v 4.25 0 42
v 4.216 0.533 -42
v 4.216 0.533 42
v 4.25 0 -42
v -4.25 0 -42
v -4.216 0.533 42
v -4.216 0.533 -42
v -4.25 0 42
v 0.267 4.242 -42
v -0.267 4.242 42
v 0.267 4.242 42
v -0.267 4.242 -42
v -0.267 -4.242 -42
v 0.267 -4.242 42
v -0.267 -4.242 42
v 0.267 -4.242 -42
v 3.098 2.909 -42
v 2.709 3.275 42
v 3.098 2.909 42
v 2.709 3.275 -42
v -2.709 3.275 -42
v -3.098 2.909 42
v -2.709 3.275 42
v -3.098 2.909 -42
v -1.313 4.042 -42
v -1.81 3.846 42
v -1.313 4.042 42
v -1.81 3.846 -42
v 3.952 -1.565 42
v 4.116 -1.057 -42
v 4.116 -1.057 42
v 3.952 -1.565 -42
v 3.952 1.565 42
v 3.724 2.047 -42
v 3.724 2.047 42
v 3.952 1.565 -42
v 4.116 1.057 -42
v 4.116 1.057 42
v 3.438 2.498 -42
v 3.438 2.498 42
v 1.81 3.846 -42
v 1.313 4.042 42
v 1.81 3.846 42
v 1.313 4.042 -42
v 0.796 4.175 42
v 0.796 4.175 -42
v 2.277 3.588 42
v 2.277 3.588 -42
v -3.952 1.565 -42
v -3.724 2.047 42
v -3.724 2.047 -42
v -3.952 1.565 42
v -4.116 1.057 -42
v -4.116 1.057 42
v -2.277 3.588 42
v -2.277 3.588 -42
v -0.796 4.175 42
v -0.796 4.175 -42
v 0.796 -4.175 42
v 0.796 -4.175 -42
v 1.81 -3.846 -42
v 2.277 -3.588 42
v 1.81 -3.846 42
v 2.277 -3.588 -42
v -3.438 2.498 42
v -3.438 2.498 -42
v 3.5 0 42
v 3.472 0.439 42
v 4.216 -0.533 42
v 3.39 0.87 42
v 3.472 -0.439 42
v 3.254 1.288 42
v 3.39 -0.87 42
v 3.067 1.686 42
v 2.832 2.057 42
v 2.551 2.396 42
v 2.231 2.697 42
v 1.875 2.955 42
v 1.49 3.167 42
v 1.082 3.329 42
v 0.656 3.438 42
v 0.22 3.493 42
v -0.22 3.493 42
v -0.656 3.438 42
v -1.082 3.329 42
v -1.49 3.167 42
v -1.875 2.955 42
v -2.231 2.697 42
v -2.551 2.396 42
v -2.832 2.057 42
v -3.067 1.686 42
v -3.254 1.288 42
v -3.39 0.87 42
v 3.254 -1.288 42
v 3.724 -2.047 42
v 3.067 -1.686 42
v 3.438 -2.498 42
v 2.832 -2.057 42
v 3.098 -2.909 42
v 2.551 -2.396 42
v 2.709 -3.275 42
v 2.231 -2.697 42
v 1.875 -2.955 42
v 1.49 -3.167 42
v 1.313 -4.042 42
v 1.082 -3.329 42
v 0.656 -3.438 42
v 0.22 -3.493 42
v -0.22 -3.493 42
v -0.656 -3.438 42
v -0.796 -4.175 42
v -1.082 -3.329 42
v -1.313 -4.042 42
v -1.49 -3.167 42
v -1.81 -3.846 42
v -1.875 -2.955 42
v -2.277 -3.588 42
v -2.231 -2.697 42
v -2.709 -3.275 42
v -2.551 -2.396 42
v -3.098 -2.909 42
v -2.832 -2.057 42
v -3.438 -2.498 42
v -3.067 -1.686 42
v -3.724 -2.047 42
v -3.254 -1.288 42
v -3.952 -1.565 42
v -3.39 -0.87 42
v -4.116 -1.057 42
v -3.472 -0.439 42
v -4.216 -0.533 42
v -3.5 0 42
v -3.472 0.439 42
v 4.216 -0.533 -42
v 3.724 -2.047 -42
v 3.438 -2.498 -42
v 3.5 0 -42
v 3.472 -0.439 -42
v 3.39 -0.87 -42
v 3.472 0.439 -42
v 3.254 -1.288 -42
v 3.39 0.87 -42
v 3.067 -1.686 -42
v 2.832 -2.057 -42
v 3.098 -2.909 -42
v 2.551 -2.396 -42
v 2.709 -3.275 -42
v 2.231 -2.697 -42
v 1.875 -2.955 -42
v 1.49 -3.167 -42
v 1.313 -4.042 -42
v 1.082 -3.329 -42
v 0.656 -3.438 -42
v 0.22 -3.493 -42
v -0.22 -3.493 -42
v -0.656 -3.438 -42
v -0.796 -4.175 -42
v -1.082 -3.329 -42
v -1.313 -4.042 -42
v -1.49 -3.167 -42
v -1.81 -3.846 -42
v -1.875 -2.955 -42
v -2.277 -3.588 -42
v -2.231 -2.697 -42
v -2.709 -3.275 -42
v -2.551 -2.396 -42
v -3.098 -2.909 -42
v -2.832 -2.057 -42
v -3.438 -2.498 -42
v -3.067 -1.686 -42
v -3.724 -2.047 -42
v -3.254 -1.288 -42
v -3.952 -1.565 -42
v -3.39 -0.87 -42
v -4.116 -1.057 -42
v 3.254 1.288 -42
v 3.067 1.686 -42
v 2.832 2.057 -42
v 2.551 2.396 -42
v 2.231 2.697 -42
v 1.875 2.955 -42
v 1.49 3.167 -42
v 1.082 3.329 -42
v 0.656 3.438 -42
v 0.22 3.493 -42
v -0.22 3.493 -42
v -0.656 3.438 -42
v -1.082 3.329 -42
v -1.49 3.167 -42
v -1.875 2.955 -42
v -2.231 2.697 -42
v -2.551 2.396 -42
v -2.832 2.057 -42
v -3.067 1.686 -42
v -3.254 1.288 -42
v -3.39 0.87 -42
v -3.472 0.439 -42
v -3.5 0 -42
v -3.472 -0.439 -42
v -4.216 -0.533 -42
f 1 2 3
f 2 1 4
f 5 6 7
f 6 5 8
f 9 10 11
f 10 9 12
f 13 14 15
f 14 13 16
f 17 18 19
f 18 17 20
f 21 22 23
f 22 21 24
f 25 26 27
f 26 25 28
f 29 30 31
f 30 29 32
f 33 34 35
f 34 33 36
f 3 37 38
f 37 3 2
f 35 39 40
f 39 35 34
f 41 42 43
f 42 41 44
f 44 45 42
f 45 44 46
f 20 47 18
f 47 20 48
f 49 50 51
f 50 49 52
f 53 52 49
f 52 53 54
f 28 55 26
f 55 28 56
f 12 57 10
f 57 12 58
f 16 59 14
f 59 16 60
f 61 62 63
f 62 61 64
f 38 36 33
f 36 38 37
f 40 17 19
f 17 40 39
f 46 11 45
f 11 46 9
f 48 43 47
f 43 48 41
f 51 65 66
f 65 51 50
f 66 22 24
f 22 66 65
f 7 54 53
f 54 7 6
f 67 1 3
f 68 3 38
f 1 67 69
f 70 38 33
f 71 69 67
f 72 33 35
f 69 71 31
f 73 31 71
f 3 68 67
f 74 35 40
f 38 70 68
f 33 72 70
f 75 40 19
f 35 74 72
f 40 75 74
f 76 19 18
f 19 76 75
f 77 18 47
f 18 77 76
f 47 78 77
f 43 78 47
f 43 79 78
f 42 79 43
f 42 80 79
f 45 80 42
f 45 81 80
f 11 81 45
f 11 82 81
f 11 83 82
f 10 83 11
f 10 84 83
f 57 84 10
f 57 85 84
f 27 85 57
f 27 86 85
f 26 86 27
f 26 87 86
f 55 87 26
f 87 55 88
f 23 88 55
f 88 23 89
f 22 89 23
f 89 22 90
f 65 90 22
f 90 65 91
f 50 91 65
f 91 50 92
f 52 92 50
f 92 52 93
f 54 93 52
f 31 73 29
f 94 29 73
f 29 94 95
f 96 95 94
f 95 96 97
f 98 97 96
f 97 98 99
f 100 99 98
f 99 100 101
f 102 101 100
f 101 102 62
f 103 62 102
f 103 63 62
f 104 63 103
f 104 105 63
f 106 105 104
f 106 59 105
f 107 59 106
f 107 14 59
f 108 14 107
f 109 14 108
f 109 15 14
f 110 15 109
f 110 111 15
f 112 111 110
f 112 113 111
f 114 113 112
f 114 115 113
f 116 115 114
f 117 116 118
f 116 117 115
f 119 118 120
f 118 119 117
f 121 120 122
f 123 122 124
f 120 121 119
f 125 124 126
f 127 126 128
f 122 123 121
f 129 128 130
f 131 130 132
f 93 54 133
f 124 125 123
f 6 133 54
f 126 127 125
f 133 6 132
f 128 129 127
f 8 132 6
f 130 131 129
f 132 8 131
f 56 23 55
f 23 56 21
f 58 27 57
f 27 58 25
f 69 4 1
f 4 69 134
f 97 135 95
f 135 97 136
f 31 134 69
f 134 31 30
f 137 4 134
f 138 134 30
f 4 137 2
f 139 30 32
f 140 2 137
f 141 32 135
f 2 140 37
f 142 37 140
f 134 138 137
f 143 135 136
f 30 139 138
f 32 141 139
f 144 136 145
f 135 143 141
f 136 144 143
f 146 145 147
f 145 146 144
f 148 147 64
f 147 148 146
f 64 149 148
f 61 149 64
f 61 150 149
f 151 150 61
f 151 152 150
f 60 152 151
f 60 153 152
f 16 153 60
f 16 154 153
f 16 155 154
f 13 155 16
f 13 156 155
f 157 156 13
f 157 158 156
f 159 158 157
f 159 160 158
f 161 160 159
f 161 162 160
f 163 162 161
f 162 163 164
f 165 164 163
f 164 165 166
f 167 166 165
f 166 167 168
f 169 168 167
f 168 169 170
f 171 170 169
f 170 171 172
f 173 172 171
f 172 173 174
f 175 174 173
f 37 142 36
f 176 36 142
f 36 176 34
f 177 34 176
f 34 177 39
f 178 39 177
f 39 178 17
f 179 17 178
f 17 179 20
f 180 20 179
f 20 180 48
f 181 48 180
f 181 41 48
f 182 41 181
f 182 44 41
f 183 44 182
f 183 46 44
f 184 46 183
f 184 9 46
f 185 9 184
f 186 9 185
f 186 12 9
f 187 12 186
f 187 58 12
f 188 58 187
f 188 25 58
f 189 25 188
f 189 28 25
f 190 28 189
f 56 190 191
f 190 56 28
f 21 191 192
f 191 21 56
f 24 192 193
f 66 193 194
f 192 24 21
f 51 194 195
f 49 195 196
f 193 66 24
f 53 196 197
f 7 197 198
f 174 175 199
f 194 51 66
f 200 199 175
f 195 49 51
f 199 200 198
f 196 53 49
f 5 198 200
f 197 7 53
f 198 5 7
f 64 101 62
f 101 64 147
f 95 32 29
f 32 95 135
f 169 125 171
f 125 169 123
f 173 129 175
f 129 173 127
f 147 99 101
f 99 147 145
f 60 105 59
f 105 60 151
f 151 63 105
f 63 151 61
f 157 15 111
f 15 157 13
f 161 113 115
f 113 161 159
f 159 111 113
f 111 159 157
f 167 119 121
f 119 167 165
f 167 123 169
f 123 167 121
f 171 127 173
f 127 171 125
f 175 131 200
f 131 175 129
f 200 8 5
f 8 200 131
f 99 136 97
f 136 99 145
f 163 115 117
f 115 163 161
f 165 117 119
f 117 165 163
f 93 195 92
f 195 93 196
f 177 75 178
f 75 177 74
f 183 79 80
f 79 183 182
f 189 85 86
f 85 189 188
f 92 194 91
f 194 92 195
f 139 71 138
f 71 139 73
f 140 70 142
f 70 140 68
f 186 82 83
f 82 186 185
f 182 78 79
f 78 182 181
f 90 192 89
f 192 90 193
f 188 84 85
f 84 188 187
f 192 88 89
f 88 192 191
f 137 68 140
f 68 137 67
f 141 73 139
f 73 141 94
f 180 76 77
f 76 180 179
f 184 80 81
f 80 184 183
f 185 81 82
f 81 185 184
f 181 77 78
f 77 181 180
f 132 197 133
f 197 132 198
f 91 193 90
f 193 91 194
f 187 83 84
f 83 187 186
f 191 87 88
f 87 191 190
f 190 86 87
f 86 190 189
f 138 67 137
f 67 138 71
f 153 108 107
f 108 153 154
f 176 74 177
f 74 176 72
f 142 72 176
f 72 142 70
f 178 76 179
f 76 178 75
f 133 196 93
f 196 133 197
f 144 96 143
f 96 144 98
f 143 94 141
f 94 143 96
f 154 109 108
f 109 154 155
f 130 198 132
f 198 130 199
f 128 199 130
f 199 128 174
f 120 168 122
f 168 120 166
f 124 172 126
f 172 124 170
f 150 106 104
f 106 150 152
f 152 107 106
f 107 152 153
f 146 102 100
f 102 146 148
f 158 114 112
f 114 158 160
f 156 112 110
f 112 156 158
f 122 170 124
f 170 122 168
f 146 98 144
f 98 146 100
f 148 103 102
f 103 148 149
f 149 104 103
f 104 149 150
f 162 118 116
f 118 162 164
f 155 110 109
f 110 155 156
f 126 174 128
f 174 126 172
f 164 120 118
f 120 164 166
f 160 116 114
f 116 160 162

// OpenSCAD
$fn = 50;


difference() {
	union() {
		translate(v = [0, 0, -42.0000000000]) {
			cylinder(h = 84, r = 4.2500000000);
		}
	}
	union() {
		translate(v = [0, 0, -100.0000000000]) {
			cylinder(h = 200, r = 3.5000000000);
		}
	}
}
